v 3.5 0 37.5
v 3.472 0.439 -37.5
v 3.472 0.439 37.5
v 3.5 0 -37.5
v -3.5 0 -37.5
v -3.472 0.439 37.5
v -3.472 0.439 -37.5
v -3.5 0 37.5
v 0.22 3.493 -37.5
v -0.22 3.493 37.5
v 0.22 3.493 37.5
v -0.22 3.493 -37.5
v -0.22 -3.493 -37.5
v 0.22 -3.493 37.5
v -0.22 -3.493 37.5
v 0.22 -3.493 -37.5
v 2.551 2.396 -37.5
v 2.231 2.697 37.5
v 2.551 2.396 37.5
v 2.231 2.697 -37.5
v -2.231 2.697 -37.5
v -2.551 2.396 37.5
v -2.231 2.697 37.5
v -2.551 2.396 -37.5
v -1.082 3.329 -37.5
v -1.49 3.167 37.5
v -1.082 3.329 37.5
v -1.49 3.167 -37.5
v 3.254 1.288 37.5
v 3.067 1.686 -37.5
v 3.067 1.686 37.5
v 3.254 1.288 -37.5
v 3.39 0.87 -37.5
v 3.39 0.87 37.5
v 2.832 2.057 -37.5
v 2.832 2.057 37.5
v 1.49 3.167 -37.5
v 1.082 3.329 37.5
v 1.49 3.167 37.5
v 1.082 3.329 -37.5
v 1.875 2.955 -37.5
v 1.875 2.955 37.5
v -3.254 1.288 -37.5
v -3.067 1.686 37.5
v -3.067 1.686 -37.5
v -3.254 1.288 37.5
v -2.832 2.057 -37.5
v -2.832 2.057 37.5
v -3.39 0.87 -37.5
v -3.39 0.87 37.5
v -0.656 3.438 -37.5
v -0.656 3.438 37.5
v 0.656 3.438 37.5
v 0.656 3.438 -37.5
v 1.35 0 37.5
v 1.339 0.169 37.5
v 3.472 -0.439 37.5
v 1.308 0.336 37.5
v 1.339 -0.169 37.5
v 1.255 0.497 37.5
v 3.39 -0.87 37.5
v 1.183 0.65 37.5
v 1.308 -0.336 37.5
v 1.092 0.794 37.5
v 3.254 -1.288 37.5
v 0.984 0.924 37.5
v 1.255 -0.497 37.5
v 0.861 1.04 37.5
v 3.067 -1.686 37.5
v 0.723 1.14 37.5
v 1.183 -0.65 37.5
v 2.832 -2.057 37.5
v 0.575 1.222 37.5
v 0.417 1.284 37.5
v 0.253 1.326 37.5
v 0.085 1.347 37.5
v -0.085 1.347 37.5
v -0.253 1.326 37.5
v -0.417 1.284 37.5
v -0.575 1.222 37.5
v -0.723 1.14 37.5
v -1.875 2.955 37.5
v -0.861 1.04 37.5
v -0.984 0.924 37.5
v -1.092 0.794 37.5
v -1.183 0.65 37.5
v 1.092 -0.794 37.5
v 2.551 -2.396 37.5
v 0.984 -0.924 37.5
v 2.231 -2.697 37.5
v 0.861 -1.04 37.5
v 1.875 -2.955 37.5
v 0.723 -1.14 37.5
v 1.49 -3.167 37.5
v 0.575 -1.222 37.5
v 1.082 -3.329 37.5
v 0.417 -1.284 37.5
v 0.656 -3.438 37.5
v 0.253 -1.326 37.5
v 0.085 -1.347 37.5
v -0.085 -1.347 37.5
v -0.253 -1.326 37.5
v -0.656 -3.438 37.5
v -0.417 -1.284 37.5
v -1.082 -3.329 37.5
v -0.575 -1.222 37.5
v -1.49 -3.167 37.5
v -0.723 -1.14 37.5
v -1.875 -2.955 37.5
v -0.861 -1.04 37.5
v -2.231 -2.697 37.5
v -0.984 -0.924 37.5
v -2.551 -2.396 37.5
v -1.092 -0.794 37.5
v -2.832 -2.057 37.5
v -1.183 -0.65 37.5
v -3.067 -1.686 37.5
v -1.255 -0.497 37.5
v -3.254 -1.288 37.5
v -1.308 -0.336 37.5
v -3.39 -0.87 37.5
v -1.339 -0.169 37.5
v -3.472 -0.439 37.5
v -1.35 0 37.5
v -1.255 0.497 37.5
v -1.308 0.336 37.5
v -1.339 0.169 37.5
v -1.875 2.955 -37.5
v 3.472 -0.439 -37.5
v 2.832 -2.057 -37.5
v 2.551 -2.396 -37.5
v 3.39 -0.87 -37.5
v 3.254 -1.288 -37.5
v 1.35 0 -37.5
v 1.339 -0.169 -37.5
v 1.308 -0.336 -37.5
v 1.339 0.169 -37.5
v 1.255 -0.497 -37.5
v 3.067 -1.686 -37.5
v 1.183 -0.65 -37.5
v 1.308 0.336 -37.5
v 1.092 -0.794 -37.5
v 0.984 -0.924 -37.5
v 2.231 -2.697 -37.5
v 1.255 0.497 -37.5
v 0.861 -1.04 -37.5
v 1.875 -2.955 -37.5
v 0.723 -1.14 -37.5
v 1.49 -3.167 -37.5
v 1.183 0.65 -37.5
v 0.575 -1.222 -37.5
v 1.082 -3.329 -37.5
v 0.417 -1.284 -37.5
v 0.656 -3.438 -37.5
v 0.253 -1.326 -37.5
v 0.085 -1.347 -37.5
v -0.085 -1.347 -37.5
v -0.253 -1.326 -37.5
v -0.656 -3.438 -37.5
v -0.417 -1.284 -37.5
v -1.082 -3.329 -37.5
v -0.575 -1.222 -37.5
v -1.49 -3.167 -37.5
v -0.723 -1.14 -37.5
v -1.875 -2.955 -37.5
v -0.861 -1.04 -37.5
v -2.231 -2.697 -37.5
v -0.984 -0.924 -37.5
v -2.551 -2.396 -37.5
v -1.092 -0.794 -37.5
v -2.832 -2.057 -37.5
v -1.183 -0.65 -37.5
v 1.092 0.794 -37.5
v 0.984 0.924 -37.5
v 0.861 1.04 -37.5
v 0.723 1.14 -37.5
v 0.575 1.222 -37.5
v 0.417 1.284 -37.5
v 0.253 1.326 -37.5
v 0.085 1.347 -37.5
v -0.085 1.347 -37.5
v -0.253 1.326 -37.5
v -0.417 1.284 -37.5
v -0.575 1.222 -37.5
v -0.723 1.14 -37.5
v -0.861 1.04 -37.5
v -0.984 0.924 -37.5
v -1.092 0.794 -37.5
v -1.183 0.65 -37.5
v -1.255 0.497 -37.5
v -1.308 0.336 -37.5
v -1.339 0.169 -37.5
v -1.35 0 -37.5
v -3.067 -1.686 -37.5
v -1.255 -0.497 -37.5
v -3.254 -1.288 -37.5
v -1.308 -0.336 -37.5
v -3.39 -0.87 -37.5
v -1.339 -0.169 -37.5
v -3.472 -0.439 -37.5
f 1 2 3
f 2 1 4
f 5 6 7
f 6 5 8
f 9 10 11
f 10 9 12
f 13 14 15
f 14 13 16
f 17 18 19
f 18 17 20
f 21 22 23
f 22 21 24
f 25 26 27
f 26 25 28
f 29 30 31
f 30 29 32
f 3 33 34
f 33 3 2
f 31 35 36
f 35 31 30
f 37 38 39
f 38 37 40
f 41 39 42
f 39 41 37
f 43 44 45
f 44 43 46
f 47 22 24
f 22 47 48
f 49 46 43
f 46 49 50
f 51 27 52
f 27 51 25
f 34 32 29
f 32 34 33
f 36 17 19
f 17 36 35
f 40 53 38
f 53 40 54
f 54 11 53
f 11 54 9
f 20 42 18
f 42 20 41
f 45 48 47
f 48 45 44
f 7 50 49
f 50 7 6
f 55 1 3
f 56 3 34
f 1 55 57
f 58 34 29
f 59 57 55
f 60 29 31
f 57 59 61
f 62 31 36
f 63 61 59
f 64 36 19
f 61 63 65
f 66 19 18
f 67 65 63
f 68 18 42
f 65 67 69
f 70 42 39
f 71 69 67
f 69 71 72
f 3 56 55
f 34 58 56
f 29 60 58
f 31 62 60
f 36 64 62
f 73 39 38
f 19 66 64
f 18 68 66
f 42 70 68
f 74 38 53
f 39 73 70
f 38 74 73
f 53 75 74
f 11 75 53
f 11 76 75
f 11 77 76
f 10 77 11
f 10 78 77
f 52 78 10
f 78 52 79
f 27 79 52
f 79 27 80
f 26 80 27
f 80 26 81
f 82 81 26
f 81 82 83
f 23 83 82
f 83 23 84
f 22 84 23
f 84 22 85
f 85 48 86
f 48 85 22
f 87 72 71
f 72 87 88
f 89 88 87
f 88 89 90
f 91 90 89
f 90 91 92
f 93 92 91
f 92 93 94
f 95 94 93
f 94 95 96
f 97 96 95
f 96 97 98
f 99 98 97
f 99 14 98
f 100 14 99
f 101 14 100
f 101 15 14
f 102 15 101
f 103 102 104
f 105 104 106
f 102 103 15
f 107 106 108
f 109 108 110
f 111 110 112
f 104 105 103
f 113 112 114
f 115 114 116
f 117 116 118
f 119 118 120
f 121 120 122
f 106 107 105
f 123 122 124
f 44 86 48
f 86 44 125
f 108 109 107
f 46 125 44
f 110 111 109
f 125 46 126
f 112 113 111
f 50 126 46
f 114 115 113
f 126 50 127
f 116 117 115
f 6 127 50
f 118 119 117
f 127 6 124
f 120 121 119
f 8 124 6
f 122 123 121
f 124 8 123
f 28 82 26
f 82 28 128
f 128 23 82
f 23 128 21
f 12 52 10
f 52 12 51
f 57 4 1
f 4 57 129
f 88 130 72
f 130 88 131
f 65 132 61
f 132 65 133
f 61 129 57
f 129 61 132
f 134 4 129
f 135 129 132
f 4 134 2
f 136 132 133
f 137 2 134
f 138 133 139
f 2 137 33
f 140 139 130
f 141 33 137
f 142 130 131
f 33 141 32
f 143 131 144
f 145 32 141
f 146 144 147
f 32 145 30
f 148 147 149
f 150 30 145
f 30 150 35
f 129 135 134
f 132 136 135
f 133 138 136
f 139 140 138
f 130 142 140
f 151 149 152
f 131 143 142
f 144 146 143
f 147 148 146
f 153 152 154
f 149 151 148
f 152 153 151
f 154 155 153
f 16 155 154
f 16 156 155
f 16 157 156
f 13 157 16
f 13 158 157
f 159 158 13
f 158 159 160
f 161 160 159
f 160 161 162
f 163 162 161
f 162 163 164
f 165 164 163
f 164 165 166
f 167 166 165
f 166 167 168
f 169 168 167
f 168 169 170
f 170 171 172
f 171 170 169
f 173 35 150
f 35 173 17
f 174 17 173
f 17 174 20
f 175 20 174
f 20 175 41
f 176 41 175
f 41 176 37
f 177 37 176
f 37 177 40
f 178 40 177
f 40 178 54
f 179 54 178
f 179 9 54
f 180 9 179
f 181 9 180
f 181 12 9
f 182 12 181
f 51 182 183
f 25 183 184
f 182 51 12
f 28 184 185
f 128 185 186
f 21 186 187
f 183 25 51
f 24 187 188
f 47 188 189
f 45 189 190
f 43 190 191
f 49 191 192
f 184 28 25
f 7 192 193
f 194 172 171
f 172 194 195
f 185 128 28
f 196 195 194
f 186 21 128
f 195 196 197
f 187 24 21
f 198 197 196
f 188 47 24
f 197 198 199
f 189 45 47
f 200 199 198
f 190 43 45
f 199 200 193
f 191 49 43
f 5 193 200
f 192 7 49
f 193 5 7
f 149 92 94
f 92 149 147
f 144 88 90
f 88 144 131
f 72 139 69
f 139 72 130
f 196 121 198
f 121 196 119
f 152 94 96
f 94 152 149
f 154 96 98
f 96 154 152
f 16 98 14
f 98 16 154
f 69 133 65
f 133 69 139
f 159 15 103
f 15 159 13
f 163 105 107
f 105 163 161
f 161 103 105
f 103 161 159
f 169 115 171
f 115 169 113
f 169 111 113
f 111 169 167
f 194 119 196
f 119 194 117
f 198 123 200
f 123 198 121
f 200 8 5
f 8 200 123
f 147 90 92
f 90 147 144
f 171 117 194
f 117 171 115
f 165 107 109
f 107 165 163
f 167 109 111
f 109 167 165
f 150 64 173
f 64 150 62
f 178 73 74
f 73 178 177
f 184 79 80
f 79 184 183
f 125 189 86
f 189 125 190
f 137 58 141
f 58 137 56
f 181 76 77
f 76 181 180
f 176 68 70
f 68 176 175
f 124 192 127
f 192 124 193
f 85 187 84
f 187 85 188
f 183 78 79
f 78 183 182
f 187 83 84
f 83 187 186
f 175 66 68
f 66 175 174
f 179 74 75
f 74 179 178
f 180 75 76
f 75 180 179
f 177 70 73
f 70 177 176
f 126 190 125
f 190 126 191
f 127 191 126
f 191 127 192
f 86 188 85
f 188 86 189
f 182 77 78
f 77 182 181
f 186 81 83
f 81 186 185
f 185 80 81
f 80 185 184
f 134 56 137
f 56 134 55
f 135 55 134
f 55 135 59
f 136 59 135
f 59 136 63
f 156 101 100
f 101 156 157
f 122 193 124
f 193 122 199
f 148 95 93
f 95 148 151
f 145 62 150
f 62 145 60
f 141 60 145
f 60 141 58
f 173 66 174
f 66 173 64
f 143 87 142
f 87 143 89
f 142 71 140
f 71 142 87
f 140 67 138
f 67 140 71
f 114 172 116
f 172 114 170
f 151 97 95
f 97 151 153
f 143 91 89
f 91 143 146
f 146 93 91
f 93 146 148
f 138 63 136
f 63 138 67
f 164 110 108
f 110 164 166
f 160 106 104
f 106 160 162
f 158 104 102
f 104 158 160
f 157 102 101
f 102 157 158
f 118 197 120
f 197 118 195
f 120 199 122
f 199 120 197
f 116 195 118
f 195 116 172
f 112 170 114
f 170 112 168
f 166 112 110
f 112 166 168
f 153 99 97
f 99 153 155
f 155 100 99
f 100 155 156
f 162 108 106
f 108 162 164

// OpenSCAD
$fn = 50;


difference() {
	union() {
		translate(v = [0, 0, -37.5000000000]) {
			cylinder(h = 75, r = 3.5000000000);
		}
	}
	union() {
		translate(v = [0, 0, -100.0000000000]) {
			cylinder(h = 200, r = 1.3500000000);
		}
	}
}
